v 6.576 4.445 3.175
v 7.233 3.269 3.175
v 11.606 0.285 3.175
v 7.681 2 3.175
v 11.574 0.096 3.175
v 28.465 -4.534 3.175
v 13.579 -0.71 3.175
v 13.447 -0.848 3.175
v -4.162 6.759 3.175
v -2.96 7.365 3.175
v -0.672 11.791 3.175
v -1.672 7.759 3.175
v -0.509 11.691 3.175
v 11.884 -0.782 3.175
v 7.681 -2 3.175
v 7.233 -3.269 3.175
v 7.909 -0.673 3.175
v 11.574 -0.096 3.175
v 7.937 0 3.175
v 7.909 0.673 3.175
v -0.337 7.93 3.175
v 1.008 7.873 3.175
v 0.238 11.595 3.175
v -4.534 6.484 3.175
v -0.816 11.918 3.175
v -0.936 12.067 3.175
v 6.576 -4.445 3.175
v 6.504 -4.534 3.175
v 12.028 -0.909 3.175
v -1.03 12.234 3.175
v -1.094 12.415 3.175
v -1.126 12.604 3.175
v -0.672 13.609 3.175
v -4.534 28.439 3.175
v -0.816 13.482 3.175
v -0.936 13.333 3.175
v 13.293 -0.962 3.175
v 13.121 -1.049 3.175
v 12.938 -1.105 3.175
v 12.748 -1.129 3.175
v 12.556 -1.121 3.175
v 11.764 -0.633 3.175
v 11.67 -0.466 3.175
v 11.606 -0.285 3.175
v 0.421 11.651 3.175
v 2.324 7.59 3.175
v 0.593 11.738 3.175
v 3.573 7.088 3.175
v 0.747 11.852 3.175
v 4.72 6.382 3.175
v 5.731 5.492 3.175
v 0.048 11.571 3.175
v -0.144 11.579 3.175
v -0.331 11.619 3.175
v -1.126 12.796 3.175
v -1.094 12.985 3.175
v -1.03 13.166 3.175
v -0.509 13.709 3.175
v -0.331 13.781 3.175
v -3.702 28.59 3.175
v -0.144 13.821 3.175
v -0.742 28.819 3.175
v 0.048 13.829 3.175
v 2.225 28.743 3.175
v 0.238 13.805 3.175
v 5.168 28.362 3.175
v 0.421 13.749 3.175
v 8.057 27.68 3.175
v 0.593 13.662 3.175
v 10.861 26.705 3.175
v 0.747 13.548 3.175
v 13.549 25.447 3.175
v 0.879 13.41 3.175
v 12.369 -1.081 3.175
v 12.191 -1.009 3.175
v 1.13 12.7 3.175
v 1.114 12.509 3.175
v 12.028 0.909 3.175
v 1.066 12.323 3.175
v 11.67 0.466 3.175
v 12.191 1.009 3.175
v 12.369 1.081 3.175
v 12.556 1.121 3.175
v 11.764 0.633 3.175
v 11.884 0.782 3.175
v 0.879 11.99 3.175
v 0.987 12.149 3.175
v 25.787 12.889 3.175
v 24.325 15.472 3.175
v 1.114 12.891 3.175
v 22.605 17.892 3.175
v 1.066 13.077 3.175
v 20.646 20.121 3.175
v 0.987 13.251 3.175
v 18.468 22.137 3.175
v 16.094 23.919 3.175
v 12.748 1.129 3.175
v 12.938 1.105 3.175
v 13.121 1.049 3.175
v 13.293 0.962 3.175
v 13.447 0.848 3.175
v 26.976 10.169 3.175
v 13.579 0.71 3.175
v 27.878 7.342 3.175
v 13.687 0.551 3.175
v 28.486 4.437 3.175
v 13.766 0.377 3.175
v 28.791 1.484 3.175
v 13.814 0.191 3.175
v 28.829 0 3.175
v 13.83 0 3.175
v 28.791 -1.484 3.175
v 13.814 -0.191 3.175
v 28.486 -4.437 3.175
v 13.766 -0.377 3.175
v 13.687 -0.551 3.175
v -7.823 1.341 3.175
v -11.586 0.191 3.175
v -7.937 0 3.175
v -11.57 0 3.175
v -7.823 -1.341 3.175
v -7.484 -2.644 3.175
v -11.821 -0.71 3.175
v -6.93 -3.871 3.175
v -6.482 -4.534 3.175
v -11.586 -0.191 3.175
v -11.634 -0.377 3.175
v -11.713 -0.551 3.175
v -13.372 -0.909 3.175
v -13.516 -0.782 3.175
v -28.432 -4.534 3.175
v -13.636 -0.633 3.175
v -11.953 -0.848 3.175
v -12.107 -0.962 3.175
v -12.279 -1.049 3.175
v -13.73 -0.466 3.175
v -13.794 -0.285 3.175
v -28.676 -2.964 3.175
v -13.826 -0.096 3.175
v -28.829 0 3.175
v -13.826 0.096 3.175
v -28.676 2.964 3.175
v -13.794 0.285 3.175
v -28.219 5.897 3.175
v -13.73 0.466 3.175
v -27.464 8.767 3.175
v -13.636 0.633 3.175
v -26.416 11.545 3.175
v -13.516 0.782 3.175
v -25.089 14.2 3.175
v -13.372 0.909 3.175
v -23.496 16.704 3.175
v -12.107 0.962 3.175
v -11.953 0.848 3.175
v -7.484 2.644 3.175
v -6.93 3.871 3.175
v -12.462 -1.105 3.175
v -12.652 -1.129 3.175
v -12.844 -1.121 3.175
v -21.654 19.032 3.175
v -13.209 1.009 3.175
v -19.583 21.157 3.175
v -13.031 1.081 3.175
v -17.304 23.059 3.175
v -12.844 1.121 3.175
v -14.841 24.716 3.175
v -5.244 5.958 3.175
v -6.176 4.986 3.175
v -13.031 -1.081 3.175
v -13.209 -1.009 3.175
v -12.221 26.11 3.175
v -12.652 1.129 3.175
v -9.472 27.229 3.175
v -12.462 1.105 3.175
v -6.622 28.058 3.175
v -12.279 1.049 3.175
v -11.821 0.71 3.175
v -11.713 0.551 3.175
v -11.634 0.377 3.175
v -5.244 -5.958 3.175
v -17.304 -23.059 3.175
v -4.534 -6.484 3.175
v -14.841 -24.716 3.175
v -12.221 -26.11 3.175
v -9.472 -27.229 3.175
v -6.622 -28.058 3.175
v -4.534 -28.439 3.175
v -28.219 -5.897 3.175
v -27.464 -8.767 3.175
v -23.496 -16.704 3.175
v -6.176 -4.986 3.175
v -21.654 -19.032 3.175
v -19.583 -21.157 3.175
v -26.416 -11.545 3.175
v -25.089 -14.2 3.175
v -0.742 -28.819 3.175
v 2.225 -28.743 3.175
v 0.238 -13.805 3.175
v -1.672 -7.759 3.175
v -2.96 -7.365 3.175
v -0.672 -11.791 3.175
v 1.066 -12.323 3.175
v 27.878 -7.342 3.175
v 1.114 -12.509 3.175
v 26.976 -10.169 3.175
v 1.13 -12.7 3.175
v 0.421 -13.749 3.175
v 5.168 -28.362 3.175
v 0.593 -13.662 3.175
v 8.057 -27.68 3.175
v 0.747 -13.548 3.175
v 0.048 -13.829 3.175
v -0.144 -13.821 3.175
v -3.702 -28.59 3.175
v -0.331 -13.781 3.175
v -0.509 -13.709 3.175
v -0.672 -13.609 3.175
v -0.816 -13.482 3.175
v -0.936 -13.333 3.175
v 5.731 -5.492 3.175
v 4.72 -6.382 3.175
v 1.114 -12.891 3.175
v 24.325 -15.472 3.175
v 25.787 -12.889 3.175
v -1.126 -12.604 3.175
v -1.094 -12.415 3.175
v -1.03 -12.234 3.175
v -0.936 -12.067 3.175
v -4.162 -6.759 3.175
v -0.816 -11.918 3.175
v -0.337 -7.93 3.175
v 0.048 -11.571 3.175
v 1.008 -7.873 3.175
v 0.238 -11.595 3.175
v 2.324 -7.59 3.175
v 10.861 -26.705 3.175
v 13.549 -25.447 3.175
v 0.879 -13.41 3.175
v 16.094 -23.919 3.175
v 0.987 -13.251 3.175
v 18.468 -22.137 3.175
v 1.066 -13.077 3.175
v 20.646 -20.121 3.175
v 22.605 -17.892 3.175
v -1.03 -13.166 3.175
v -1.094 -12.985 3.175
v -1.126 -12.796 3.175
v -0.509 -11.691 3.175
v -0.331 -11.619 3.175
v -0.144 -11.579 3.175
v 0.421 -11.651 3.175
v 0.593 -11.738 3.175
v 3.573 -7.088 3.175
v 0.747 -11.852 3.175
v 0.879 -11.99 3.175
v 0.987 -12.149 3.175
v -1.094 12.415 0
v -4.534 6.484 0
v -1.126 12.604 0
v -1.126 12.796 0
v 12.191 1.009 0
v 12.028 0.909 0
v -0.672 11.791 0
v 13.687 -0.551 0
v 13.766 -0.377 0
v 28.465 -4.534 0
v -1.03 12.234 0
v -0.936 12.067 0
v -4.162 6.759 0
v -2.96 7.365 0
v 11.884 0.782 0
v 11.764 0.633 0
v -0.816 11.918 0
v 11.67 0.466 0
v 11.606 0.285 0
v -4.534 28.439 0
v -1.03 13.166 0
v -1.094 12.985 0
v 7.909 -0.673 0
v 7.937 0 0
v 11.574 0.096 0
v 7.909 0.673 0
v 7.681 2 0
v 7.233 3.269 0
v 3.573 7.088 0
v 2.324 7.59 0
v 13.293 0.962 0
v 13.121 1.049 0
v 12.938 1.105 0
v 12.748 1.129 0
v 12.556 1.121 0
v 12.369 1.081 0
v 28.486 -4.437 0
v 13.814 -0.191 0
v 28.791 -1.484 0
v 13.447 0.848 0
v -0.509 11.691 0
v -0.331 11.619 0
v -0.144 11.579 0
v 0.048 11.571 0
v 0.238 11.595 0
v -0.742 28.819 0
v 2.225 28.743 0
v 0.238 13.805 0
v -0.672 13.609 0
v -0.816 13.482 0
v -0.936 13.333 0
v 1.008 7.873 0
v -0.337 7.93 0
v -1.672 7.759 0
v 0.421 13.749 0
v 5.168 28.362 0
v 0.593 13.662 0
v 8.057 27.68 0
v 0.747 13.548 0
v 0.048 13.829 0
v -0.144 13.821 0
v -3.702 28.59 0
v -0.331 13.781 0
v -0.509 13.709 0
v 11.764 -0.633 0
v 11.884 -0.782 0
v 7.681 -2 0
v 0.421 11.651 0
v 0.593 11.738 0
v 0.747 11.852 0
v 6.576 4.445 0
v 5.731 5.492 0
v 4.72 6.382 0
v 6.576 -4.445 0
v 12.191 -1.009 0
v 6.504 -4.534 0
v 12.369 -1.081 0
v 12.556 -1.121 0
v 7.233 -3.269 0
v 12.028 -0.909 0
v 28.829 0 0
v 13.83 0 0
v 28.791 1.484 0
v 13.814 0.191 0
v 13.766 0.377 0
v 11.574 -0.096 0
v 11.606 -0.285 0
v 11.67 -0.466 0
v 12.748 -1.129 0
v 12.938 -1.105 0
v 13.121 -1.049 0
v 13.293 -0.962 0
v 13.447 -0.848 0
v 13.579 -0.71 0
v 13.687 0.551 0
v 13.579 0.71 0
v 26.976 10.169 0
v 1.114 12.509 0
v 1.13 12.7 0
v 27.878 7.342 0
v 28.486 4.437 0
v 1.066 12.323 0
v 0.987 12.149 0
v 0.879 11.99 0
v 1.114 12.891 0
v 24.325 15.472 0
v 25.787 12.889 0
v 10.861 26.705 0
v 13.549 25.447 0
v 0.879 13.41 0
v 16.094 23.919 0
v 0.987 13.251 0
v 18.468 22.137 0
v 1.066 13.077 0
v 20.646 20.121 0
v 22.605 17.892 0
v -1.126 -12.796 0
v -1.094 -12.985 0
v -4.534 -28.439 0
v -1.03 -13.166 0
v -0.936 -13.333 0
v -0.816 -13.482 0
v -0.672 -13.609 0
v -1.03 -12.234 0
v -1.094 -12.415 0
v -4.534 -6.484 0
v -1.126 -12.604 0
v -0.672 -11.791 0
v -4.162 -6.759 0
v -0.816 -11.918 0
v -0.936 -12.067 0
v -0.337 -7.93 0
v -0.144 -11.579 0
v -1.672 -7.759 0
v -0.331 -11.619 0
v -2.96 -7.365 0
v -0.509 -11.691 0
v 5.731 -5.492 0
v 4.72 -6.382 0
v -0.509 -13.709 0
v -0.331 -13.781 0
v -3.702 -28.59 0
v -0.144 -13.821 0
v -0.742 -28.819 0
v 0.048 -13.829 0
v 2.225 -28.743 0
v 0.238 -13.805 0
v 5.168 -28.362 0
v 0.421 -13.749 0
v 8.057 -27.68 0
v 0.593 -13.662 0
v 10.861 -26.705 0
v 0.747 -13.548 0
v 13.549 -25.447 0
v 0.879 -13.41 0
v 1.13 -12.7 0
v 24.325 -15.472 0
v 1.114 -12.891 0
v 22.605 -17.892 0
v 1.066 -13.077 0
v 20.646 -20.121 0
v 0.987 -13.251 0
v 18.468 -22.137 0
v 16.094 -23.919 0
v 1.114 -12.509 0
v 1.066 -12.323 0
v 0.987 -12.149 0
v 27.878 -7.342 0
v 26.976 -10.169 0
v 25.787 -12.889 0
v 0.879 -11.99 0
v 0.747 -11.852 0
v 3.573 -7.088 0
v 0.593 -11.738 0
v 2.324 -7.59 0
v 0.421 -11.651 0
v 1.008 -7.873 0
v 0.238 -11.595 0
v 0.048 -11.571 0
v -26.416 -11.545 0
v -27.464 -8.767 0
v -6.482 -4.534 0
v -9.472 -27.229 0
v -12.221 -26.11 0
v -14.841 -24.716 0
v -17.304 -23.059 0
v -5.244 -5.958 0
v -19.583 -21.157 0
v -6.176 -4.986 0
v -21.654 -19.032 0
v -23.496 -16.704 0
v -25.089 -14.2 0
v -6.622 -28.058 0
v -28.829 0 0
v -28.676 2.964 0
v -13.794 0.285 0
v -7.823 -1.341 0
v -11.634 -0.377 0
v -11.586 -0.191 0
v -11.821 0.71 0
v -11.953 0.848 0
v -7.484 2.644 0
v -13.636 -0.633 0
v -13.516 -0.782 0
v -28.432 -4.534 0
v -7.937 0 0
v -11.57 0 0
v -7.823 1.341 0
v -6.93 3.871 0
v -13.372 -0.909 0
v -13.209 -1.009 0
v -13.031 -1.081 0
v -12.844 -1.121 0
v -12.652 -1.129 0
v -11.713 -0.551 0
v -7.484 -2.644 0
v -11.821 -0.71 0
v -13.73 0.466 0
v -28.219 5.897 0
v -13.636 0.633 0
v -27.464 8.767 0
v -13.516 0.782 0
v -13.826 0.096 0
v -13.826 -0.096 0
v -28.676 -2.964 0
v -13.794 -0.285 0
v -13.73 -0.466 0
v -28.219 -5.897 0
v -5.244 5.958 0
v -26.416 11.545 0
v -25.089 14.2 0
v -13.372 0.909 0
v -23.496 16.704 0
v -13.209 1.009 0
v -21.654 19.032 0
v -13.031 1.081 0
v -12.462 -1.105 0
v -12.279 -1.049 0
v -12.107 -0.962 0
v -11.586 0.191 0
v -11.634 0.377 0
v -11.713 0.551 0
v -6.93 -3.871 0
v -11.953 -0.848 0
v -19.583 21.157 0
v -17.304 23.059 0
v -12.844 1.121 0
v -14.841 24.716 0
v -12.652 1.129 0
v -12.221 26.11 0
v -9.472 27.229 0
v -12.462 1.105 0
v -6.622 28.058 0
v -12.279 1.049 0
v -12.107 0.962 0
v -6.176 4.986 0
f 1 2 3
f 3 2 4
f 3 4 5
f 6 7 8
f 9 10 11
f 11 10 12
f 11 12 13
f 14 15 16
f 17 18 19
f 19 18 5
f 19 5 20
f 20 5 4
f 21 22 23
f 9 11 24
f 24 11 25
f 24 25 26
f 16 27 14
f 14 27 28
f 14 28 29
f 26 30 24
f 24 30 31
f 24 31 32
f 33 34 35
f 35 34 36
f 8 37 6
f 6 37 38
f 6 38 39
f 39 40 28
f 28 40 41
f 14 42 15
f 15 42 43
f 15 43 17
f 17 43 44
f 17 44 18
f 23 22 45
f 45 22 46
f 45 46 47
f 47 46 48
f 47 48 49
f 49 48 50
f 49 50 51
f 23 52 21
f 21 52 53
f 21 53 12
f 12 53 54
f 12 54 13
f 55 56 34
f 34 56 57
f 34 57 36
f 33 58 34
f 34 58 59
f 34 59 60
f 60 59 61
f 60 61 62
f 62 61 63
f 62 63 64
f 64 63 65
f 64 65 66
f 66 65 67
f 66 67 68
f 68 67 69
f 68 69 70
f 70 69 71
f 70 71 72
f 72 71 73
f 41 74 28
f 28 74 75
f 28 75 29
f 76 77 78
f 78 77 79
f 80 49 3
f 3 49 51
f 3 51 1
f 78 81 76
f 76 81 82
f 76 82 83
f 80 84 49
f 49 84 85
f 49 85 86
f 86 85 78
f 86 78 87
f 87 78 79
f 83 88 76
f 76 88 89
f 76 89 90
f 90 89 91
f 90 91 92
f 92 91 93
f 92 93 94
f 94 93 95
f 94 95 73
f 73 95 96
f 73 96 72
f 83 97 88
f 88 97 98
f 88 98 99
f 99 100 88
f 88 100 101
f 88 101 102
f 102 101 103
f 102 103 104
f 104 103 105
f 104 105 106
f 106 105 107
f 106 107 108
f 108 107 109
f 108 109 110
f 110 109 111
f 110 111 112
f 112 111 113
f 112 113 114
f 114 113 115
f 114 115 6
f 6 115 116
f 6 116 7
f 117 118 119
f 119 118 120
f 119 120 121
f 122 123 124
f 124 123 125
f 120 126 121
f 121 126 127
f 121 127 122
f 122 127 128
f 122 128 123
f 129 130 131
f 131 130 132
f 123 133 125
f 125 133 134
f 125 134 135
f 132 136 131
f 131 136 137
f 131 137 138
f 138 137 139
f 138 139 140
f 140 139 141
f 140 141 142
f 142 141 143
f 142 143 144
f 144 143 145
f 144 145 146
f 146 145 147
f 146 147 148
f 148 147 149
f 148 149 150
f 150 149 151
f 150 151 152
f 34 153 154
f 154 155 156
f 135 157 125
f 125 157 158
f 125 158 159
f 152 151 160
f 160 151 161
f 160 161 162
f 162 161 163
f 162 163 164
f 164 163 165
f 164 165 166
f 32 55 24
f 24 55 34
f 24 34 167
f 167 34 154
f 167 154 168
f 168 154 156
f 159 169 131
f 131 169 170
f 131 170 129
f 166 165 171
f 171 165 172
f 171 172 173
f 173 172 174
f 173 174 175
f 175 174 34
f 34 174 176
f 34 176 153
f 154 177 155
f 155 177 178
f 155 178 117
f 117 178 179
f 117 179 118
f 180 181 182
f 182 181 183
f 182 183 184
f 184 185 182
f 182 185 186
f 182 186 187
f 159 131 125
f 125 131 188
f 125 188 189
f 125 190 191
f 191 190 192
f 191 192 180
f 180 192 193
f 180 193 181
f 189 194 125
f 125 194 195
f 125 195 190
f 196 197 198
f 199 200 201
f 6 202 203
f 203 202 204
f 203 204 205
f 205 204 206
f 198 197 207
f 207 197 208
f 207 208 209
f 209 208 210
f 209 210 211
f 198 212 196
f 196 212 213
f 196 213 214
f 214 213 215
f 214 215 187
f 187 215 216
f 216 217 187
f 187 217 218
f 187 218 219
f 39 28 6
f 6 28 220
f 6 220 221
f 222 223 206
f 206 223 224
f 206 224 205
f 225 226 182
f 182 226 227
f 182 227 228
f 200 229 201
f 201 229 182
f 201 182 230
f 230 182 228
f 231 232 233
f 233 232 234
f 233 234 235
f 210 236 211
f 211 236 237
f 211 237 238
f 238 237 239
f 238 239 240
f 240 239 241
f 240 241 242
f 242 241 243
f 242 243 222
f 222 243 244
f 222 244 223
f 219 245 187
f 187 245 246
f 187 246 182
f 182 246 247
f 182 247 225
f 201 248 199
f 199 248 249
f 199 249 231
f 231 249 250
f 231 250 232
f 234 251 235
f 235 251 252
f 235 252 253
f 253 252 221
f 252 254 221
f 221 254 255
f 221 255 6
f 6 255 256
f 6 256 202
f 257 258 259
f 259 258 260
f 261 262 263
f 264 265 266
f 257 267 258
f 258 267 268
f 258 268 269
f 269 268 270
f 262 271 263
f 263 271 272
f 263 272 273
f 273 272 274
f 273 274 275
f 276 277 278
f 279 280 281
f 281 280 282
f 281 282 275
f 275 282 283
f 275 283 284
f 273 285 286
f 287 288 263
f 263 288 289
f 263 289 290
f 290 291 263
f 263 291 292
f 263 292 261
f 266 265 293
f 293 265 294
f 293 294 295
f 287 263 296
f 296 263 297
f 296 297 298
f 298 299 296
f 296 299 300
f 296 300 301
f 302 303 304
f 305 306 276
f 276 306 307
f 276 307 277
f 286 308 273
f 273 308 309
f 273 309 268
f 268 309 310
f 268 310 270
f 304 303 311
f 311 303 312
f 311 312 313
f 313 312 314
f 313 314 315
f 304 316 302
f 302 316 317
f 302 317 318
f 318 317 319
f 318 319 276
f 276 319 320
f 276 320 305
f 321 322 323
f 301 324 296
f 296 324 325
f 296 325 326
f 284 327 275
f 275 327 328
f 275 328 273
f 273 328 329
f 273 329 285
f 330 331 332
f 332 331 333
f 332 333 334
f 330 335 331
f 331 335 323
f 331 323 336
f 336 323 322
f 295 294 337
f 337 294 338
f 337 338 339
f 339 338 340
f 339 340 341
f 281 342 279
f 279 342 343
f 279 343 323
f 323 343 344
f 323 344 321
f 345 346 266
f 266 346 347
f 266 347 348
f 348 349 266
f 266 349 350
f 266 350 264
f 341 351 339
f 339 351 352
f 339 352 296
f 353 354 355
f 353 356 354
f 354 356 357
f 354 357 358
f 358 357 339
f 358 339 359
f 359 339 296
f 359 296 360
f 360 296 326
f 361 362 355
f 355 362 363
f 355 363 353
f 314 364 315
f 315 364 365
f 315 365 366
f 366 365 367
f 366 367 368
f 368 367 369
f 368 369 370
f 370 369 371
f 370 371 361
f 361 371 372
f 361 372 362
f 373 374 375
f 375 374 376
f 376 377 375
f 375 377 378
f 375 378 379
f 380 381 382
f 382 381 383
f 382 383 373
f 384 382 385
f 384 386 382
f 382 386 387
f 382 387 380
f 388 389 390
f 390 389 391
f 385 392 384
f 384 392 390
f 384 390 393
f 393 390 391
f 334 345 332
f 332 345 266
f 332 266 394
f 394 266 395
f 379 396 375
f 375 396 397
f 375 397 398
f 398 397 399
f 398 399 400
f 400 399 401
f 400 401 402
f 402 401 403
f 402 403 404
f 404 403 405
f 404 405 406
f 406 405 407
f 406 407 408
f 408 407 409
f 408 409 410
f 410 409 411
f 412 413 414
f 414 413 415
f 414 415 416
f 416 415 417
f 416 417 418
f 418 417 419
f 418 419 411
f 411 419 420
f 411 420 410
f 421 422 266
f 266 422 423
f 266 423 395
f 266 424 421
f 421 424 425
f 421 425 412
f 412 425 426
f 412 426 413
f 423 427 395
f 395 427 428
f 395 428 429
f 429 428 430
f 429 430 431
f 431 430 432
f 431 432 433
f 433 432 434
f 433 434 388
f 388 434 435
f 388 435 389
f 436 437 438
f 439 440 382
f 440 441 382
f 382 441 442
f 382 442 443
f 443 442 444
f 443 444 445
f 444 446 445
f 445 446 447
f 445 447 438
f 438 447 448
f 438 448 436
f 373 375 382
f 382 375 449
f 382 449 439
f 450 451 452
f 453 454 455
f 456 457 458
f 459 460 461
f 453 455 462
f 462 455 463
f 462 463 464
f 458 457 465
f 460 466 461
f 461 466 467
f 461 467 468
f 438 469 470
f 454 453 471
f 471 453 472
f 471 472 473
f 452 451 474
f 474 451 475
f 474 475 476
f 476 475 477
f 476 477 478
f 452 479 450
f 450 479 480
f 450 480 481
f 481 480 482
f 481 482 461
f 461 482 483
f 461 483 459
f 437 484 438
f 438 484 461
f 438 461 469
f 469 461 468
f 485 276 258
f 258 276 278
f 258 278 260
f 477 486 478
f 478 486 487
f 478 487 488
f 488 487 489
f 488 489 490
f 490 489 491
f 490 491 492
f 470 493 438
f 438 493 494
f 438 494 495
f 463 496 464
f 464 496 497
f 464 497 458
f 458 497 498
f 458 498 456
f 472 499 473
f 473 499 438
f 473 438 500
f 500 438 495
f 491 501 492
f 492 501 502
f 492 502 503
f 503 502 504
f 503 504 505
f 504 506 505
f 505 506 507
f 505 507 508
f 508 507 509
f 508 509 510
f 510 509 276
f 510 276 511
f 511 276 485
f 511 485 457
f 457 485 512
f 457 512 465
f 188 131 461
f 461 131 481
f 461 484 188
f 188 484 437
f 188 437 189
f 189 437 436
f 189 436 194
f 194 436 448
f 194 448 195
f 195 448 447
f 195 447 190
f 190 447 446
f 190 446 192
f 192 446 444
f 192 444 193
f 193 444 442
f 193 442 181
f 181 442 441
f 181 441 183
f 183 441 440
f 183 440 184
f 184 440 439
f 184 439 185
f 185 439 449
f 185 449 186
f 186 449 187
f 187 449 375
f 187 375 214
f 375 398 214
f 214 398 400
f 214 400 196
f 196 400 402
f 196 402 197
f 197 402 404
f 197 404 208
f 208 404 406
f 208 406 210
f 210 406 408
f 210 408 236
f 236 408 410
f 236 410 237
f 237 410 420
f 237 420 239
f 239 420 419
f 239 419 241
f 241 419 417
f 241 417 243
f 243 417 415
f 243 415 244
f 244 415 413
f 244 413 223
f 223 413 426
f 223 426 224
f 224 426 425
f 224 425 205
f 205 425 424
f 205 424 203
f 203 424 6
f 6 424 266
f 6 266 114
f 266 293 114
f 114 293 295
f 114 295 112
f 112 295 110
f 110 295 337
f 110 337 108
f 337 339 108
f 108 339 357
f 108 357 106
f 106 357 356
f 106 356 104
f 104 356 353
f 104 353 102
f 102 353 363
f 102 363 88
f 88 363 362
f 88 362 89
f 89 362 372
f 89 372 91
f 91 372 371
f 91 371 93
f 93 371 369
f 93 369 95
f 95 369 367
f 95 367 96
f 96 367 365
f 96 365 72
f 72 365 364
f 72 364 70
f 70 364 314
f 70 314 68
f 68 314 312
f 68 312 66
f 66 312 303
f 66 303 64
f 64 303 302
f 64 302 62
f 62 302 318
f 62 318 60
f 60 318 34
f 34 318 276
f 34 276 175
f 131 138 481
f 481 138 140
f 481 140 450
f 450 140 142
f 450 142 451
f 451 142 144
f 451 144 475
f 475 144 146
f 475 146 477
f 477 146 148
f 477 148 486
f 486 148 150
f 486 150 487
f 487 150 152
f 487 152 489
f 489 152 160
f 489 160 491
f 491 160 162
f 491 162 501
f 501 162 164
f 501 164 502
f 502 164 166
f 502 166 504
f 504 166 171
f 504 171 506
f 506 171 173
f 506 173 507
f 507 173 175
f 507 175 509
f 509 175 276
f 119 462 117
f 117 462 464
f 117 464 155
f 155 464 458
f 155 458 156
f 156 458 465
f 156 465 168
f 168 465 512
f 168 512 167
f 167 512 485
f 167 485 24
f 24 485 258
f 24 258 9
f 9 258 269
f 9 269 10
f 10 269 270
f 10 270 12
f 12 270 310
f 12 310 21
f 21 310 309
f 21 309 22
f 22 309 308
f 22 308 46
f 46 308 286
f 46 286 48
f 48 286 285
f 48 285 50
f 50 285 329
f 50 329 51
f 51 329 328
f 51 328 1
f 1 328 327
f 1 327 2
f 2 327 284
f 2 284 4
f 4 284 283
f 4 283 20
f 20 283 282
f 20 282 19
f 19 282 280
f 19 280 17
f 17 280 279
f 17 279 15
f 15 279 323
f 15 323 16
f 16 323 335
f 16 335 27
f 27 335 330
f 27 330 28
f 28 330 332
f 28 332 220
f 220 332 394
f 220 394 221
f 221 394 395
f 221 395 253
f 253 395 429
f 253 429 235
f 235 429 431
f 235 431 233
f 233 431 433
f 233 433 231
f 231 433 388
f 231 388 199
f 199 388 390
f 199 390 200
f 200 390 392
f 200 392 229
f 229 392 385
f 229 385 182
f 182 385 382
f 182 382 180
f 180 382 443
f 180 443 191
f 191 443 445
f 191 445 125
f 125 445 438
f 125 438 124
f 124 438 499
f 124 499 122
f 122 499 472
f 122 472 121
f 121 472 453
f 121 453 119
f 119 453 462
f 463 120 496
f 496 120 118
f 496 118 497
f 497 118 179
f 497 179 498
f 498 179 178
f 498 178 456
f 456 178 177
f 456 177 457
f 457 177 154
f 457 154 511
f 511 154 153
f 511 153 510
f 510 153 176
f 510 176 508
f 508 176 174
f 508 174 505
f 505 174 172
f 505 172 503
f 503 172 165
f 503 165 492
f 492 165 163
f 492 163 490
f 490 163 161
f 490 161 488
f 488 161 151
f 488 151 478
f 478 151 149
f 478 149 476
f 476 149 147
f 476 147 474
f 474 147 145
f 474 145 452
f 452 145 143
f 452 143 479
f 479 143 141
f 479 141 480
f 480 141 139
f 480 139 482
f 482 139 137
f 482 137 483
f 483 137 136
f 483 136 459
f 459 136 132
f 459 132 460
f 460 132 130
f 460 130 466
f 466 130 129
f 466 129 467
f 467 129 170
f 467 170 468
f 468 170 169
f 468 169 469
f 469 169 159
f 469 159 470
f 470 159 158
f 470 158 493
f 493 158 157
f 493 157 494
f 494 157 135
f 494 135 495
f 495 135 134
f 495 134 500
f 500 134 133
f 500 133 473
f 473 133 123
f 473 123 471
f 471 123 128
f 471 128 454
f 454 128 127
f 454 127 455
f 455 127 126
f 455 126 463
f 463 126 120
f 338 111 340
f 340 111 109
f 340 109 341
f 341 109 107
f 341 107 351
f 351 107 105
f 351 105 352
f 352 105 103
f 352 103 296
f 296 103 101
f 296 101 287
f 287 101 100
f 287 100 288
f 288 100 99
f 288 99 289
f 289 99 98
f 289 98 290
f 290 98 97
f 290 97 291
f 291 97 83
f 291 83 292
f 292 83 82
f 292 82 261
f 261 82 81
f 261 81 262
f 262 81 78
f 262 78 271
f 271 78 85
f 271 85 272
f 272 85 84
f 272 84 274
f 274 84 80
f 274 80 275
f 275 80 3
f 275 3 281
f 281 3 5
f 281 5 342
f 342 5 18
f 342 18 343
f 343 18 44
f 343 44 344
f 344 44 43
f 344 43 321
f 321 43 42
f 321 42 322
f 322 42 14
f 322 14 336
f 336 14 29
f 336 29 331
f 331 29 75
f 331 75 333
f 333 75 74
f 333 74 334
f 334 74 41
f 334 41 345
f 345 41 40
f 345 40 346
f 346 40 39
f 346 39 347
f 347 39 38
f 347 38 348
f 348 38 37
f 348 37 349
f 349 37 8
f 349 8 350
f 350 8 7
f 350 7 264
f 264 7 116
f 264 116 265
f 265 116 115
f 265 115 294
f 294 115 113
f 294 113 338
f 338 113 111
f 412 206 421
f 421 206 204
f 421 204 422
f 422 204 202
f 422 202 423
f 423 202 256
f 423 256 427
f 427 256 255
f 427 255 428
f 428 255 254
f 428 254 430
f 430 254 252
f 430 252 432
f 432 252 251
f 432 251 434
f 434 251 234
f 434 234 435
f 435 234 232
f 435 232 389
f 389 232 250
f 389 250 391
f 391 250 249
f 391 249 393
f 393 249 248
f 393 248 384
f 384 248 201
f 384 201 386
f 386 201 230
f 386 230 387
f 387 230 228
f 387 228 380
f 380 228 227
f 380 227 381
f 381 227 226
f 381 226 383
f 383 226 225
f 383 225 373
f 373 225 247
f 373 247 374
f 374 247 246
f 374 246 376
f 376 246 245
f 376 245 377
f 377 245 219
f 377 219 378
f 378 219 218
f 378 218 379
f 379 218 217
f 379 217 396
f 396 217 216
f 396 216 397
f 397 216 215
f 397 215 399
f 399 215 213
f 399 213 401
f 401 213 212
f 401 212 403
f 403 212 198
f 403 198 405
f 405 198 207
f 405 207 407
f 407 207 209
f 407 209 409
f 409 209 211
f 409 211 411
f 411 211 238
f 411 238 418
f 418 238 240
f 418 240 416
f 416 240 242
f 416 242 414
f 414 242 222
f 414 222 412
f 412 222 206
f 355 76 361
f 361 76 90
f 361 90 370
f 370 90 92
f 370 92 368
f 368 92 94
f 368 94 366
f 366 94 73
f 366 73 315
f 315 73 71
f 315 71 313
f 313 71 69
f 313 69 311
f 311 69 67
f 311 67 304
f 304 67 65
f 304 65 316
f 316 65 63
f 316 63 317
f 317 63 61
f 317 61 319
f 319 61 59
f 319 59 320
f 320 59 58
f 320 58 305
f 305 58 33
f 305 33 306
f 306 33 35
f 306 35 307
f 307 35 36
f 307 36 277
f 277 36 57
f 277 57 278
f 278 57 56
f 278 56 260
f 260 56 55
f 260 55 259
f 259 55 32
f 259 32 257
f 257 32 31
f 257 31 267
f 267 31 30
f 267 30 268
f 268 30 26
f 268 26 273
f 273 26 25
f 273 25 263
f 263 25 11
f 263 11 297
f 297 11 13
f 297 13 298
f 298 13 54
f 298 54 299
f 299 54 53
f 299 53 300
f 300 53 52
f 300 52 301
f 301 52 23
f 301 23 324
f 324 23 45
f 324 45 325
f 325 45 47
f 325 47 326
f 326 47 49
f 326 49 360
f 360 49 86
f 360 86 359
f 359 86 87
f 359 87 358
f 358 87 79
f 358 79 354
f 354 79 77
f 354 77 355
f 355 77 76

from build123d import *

# Parameters (mm, degrees)
SKETCH1_R                     = 28.829
SKETCH1_R_2                   = 7.9375
BOSS_EXTRUDE1_DEPTH           = 3.175
TAP_DRILL_FOR_4_40_TAP1_D     = 2.2606
TAP_DRILL_FOR_4_40_TAP1_DEPTH = 4
TAP_DRILL_FOR_4_40_TAP1_TIP   = 0.679152758


with BuildPart() as part:
    # Sketch1 → Boss-Extrude1 (new body)
    with BuildSketch(Plane.XY):
        Circle(SKETCH1_R)
        Circle(SKETCH1_R_2, mode=Mode.SUBTRACT)
    extrude(amount=BOSS_EXTRUDE1_DEPTH)

    # Tap Drill for #4-40 Tap1
    with Locations(Plane.XY.offset(3.175)):
        with Locations((0, 12.7), (0, -12.7), (12.7, 0), (-12.7, 0)):
            Hole(TAP_DRILL_FOR_4_40_TAP1_D / 2, depth=TAP_DRILL_FOR_4_40_TAP1_DEPTH)
            with Locations((0, 0, -(TAP_DRILL_FOR_4_40_TAP1_DEPTH + TAP_DRILL_FOR_4_40_TAP1_TIP / 2))):  # 118° drill point
                Cone(0, TAP_DRILL_FOR_4_40_TAP1_D / 2, TAP_DRILL_FOR_4_40_TAP1_TIP, mode=Mode.SUBTRACT)


solid = part.part
